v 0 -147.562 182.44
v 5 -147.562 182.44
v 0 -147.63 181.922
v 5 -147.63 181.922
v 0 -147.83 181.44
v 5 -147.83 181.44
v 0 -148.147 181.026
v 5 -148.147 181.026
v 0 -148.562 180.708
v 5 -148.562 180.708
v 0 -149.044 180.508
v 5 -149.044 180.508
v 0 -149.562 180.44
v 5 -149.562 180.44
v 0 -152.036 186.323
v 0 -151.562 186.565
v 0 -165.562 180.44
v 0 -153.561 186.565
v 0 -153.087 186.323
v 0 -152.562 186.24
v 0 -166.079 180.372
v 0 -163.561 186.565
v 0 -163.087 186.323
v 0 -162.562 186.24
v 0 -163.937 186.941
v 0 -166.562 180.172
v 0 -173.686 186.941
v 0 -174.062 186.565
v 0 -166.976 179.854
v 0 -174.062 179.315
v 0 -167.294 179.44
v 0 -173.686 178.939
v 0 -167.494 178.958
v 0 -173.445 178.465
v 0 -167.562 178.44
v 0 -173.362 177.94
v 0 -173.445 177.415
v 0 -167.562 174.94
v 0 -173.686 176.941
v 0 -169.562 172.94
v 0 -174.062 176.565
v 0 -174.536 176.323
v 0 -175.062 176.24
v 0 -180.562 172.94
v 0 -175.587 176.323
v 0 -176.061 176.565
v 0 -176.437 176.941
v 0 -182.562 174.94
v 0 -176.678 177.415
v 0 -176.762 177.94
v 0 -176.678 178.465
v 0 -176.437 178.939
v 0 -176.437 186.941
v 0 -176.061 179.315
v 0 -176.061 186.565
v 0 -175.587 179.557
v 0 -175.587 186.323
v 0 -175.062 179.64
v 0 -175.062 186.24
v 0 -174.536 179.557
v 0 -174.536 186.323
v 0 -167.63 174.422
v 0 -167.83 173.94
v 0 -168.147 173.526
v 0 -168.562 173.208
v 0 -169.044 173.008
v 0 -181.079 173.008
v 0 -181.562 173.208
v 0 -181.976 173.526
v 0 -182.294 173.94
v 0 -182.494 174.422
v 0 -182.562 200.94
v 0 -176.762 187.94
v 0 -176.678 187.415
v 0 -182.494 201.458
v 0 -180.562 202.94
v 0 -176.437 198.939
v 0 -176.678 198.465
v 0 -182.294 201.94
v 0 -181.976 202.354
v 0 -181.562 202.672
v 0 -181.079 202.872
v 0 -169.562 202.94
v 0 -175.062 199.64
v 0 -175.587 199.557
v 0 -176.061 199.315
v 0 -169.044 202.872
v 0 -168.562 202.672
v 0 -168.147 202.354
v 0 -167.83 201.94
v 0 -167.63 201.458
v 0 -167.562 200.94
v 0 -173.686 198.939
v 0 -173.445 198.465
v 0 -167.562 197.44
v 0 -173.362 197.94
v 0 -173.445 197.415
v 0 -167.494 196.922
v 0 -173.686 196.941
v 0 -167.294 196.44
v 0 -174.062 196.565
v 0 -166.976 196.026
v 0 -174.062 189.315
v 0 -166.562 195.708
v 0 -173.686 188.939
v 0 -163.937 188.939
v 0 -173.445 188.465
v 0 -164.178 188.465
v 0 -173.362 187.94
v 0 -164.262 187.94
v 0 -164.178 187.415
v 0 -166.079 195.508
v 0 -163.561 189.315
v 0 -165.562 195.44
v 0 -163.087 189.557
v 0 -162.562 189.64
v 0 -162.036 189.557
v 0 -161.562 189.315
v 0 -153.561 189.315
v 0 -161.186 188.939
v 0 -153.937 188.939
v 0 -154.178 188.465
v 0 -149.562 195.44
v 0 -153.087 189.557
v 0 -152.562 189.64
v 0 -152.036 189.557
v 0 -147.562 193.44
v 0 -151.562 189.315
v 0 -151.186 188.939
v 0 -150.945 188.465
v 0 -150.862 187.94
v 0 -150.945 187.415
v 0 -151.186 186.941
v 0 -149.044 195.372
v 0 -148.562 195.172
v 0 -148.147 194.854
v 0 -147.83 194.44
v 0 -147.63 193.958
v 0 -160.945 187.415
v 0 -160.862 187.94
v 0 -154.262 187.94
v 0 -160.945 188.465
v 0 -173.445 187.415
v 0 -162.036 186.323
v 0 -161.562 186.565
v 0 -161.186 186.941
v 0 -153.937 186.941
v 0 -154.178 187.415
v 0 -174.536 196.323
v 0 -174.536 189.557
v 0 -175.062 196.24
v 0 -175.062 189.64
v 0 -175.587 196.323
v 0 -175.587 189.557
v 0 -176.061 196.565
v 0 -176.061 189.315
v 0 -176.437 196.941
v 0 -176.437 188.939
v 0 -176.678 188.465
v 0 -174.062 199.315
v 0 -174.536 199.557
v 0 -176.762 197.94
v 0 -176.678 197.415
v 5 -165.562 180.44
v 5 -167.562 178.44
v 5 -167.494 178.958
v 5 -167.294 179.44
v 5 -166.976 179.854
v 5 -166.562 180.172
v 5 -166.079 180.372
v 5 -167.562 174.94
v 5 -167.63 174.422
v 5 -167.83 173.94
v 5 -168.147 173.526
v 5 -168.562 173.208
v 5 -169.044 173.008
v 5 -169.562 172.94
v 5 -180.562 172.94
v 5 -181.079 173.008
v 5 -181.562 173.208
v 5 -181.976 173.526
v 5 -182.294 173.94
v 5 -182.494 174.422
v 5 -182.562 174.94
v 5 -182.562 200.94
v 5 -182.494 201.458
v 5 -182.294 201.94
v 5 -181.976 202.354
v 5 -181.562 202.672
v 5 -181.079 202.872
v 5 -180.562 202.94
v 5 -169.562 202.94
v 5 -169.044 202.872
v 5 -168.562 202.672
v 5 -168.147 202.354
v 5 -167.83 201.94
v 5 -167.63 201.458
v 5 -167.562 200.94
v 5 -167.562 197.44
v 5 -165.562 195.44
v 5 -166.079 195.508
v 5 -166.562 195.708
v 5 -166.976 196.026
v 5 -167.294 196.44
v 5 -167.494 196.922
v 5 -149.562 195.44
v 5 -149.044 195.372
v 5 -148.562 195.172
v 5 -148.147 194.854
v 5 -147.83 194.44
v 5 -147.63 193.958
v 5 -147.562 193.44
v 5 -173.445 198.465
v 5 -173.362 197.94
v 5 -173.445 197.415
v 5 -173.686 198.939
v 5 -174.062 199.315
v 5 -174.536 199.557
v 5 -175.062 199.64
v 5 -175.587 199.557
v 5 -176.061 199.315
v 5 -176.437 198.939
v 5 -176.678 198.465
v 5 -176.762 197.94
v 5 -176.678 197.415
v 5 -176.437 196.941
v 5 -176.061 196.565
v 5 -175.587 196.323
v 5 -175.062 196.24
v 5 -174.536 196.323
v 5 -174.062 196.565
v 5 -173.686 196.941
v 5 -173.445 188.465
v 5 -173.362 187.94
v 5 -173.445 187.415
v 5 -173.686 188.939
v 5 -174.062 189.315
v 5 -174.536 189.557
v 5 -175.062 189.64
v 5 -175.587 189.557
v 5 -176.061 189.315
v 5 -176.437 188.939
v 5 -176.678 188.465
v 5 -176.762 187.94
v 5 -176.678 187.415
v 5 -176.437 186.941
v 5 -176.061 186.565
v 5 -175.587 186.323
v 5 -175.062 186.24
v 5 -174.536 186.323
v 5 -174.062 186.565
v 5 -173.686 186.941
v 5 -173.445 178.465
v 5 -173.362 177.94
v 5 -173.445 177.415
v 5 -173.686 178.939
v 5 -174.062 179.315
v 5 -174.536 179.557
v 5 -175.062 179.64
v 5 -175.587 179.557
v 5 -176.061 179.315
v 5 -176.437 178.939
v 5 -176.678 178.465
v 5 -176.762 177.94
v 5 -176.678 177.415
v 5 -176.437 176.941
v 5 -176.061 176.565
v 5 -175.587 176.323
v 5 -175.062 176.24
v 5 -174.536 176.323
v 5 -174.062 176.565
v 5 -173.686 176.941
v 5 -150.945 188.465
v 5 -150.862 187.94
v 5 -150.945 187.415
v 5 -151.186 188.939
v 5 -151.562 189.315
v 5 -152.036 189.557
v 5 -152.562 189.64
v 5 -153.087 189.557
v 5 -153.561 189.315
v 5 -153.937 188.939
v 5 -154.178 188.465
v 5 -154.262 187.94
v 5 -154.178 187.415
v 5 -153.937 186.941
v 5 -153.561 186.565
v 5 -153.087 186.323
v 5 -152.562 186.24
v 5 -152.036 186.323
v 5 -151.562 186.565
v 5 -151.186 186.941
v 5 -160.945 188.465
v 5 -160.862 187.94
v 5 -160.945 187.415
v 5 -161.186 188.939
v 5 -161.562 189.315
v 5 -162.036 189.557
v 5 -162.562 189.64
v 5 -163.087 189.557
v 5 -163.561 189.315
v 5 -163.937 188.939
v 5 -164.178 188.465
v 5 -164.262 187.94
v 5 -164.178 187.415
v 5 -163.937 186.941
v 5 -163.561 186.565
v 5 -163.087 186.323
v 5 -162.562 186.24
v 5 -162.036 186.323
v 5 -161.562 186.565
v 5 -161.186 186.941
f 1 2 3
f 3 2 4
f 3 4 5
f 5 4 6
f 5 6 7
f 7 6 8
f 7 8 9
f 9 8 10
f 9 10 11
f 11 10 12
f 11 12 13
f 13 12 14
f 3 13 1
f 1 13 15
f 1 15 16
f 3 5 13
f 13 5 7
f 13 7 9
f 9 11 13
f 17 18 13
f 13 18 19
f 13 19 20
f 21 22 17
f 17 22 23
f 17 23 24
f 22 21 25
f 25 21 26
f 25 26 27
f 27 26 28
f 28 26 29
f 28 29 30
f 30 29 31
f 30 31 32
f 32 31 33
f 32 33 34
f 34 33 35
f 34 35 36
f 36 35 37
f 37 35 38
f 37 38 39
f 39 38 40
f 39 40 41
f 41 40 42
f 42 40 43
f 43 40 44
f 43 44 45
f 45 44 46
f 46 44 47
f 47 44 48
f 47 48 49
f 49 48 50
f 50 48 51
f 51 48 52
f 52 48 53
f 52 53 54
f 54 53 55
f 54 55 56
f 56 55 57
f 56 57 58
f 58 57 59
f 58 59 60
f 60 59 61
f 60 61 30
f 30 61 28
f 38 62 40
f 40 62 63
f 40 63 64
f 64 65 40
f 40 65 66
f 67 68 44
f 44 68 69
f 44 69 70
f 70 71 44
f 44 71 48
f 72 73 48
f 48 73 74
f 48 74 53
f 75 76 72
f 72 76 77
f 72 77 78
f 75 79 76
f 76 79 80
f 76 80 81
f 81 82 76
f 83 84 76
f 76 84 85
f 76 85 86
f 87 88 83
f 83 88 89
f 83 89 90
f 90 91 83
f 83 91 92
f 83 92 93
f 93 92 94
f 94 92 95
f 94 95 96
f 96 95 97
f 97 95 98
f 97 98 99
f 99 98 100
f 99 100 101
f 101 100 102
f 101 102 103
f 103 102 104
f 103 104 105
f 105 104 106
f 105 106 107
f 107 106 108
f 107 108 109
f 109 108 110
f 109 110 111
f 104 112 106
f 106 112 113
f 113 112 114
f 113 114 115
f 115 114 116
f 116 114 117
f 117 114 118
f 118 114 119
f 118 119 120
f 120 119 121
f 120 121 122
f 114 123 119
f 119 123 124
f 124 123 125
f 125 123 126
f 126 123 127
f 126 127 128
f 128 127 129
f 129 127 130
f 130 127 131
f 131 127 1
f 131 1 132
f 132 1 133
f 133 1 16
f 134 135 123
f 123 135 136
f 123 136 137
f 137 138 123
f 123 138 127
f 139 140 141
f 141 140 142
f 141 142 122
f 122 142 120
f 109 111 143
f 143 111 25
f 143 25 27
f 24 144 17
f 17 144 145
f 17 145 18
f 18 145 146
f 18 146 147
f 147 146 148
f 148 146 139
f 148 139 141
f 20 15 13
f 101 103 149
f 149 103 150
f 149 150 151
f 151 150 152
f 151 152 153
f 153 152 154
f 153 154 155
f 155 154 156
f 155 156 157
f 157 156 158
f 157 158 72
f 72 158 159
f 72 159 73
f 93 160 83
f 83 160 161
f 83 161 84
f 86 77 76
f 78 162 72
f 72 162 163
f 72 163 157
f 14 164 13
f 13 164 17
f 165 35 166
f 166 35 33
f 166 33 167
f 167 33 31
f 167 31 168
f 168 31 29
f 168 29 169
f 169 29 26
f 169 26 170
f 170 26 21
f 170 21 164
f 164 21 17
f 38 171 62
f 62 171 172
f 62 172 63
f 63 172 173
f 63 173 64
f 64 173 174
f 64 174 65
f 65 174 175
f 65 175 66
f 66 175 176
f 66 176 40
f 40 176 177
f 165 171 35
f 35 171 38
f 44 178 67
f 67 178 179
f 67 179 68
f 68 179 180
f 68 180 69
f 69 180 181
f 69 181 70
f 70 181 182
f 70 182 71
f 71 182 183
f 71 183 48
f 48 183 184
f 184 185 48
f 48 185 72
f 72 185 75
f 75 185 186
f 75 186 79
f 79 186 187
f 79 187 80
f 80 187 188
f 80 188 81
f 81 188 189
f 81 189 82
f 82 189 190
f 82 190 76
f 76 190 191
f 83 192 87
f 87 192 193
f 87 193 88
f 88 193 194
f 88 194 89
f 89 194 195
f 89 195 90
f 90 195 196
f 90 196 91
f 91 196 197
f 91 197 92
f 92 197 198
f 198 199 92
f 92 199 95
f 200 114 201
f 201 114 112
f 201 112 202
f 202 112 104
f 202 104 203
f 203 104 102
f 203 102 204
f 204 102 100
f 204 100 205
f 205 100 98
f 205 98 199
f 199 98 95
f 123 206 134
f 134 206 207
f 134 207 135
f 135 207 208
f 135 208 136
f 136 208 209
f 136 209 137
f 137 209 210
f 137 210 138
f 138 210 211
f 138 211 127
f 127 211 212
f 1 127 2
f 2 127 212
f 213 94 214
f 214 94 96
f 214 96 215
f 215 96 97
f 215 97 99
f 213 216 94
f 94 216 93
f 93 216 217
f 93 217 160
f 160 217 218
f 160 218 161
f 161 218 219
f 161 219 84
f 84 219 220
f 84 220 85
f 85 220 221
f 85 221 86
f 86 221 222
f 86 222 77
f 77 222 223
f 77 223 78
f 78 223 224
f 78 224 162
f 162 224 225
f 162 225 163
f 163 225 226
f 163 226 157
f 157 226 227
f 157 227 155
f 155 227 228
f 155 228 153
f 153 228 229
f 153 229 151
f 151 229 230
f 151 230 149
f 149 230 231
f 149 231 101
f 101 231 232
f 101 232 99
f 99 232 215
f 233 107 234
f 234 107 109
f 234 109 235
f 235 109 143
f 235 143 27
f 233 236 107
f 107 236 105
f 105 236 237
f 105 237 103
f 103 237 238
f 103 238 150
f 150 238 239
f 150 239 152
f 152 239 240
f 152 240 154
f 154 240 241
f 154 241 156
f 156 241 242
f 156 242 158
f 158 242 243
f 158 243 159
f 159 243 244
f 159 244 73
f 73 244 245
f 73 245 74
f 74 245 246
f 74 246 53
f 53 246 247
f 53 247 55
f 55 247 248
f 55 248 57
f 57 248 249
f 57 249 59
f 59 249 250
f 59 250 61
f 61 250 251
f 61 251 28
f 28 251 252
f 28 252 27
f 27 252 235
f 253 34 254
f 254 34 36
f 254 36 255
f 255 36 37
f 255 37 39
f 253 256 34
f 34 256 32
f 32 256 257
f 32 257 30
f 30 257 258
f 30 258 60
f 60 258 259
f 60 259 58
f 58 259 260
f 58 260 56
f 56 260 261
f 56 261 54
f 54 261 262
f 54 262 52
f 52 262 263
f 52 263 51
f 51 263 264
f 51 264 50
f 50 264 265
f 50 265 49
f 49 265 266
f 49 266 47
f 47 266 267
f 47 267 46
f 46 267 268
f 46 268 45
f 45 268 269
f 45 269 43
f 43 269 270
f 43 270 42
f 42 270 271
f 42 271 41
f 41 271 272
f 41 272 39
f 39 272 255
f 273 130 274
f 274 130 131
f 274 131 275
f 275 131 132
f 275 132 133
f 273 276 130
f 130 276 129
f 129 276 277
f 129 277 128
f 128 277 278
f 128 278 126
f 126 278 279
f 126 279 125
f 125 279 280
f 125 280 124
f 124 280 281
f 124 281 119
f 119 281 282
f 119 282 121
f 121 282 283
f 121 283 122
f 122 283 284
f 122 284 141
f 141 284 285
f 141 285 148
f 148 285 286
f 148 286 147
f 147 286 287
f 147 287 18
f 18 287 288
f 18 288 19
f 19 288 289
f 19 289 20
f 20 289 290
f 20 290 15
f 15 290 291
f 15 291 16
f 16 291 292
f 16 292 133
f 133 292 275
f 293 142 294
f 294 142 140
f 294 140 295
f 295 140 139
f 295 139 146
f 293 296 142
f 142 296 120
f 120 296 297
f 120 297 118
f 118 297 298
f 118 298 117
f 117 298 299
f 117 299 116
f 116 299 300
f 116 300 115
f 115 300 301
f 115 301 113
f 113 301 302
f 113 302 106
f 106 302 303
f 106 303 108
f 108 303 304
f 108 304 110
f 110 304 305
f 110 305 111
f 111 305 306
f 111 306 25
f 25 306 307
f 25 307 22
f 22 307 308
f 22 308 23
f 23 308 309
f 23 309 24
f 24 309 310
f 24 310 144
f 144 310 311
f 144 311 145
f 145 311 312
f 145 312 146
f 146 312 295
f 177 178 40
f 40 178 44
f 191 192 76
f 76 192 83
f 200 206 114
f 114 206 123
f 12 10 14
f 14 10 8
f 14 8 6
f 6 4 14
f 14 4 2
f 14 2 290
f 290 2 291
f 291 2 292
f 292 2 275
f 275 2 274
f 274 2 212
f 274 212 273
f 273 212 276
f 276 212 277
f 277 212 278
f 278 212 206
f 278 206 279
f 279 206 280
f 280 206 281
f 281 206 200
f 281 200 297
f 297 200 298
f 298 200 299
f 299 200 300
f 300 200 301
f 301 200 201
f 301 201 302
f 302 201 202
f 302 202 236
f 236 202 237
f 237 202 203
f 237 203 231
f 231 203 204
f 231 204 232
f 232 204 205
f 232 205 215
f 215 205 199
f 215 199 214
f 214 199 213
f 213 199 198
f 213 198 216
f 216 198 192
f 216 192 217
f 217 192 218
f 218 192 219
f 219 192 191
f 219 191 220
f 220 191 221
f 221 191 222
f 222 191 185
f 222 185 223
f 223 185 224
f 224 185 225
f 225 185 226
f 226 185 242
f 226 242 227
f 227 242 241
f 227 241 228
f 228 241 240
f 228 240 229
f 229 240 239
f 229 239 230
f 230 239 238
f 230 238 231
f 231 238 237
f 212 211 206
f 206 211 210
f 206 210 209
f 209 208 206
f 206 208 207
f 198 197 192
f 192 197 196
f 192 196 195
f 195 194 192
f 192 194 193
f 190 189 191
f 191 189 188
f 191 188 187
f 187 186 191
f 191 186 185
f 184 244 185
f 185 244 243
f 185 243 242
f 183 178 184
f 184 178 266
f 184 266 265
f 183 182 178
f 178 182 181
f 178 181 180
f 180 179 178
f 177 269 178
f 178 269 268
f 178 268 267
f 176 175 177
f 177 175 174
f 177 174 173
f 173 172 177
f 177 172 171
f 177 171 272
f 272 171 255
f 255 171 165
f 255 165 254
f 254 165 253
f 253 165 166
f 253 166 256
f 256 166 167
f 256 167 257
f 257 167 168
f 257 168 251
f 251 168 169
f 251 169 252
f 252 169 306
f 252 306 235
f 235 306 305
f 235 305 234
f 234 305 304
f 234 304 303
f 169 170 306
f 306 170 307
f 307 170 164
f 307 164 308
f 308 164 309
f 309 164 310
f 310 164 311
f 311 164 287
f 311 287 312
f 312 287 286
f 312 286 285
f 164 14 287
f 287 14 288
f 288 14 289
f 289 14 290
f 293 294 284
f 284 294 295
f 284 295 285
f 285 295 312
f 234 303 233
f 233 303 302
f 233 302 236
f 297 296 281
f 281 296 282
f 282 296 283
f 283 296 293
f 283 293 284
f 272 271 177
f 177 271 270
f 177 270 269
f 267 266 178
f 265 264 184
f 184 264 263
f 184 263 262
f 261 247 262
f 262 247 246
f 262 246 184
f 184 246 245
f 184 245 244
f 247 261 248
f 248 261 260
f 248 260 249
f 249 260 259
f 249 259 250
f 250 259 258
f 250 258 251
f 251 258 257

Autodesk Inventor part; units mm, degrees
ref_plane "YZ Plane" through (0, 0, 0) normal (1, 0, 0) x (0, 1, 0)
ref_plane "XZ Plane" through (0, 0, 0) normal (0, 1, 0) x (-1, 0, 0)
ref_plane "XY Plane" through (0, 0, 0) normal (0, 0, 1) x (1, 0, 0)
sketch "スケッチ1" plane through (0, 0, 0) normal (1, 0, 0) x (0, 1, 0)
  line L0 (-167.5617, 195.4399) -> (192.4383, 195.4399)
  line L1 (192.4383, 195.4399) -> (192.4383, 180.4399)
  line L2 (192.4383, 180.4399) -> (-167.5617, 180.4399)
  line L3 (-167.5617, 180.4399) -> (-167.5617, 195.4399)
  line L4 (-167.5617, 230.4399) -> (-182.5617, 230.4399)
  line L5 (-182.5617, 230.4399) -> (-182.5617, 2.9399)
  line L6 (-182.5617, 2.9399) -> (-167.5617, 2.9399)
  line L7 (-167.5617, 2.9399) -> (-167.5617, 230.4399)
  line L8 (-167.5617, 230.4399) -> (-182.5617, 230.4399)
  line L9 (-182.5617, 230.4399) -> (-182.5617, 215.4399)
  line L10 (-182.5617, 215.4399) -> (-167.5617, 215.4399)
  line L11 (-167.5617, 215.4399) -> (-167.5617, 230.4399)
  line L12 (-117.5617, 180.4399) -> (-102.5617, 180.4399)
  line L13 (-102.5617, 180.4399) -> (-102.5617, 2.9399)
  line L14 (-102.5617, 2.9399) -> (-117.5617, 2.9399)
  line L15 (-117.5617, 2.9399) -> (-117.5617, 180.4399)
  line L16 (192.4383, 180.4399) -> (177.4383, 180.4399)
  line L17 (177.4383, 180.4399) -> (177.4383, 2.9399)
  line L18 (177.4383, 2.9399) -> (192.4383, 2.9399)
  line L19 (192.4383, 2.9399) -> (192.4383, 180.4399)
  circle A0 centre (-142.5617, 135.4399) radius 12.5
  circle A1 centre (-142.5617, 95.4399) radius 18.75
  line L20 (192.4383, 2.9399) -> (-167.5617, 2.9399)
  line L21 (-182.5617, 155.4399) -> (-102.5617, 155.4399)
  line L22 (-102.5617, 75.4399) -> (-182.5617, 75.4399)
  circle A2 centre (-142.5617, 95.4399) radius 20
  line L23 (-125.0617, 195.4399) -> (-125.0617, 180.4399)
  line L24 (-102.5617, 180.4399) -> (-102.5617, 195.4399)
  line L25 (-147.5617, 195.4399) -> (-147.5617, 180.4399)
  line L26 (-167.5617, 202.9399) -> (-182.5617, 202.9399)
  line L27 (-167.5617, 172.9399) -> (-182.5617, 172.9399)
  circle A3 centre (157.4383, 135.4399) radius 12.5
  line L28 (192.4383, 160.4399) -> (177.4383, 160.4399)
  line L29 (169.9383, 195.4399) -> (169.9383, 180.4399)
  line L30 (-167.5617, -189.5601) -> (192.4383, -189.5601)
  line L31 (192.4383, -189.5601) -> (192.4383, -174.5601)
  line L32 (192.4383, -174.5601) -> (-167.5617, -174.5601)
  line L33 (-167.5617, -174.5601) -> (-167.5617, -189.5601)
  line L34 (-167.5617, -224.5601) -> (-182.5617, -224.5601)
  line L35 (-182.5617, -224.5601) -> (-182.5617, 2.9399)
  line L36 (-167.5617, 2.9399) -> (-167.5617, -224.5601)
  line L37 (-167.5617, -224.5601) -> (-182.5617, -224.5601)
  line L38 (-182.5617, -224.5601) -> (-182.5617, -209.5601)
  line L39 (-182.5617, -209.5601) -> (-167.5617, -209.5601)
  line L40 (-167.5617, -209.5601) -> (-167.5617, -224.5601)
  line L41 (-117.5617, -174.5601) -> (-102.5617, -174.5601)
  line L42 (-102.5617, -174.5601) -> (-102.5617, 2.9399)
  line L43 (-117.5617, 2.9399) -> (-117.5617, -174.5601)
  line L44 (192.4383, -174.5601) -> (177.4383, -174.5601)
  line L45 (177.4383, -174.5601) -> (177.4383, 2.9399)
  line L46 (192.4383, 2.9399) -> (192.4383, -174.5601)
  circle A4 centre (-142.5617, -129.5601) radius 12.5
  circle A5 centre (-142.5617, -89.5601) radius 18.75
  line L47 (-182.5617, -149.5601) -> (-102.5617, -149.5601)
  line L48 (-102.5617, -69.5601) -> (-182.5617, -69.5601)
  circle A6 centre (-142.5617, -89.5601) radius 20
  line L49 (-125.0617, -189.5601) -> (-125.0617, -174.5601)
  line L50 (-102.5617, -174.5601) -> (-102.5617, -189.5601)
  line L51 (-147.5617, -189.5601) -> (-147.5617, -174.5601)
  line L52 (-167.5617, -197.0601) -> (-182.5617, -197.0601)
  line L53 (-167.5617, -167.0601) -> (-182.5617, -167.0601)
  circle A7 centre (157.4383, -129.5601) radius 12.5
  line L54 (192.4383, -154.5601) -> (177.4383, -154.5601)
  line L55 (169.9383, -189.5601) -> (169.9383, -174.5601)
  line L56 (192.4383, 155.4399) -> (144.9383, 155.4399)
  line L57 (144.9383, 155.4399) -> (144.9383, 75.4399)
  line L58 (144.9383, 75.4399) -> (192.4383, 75.4399)
  line L59 (192.4383, 75.4399) -> (192.4383, 155.4399)
  line L60 (177.4383, 155.4399) -> (153.4158, 147.275)
  line L61 (146.595, 129.2213) -> (177.4383, 75.4399)
  circle A8 centre (-175.0617, 197.9399) radius 1.7
  circle A9 centre (-175.0617, 187.9399) radius 1.7
  circle A10 centre (-175.0617, 177.9399) radius 1.7
  circle A11 centre (-162.5617, 187.9399) radius 1.7
  circle A12 centre (-152.5617, 187.9399) radius 1.7
  point P0 (0, 0)
  point P1 (-120.0617, 187.9399)
  point P2 (-110.0617, 187.9399)
  point P3 (-110.0617, 175.4399)
  point P4 (-110.0617, 165.4399)
  point P5 (184.9383, 175.4399)
  point P6 (184.9383, 165.4399)
  point P7 (184.9383, 187.9399)
  point P8 (174.9383, 187.9399)
  point P9 (-110.0617, 180.4399)
  point P10 (192.4383, 187.9399)
  point P11 (-110.0617, 95.4399)
  point P12 (-110.0617, 135.4399)
  point P13 (-175.0617, 135.4399)
  point P14 (-175.0617, 95.4399)
  point P15 (-175.0617, -89.5601)
  point P16 (-110.0617, -89.5601)
  point P17 (-110.0617, -129.5601)
  point P18 (-175.0617, -129.5601)
  point P19 (-175.0617, -172.0601)
  point P20 (-175.0617, -182.0601)
  point P21 (-175.0617, -192.0601)
  point P22 (-162.5617, -182.0601)
  point P23 (-152.5617, -182.0601)
  point P24 (-120.0617, -182.0601)
  point P25 (-110.0617, -182.0601)
  point P26 (-110.0617, -169.5601)
  point P27 (-110.0617, -159.5601)
  point P28 (174.9383, -182.0601)
  point P29 (184.9383, -182.0601)
  point P30 (184.9383, -169.5601)
  point P31 (184.9383, -159.5601)
  point P32 (184.9383, 135.4399)
  point P33 (184.9383, 95.4399)
  point P34 (177.4383, 91.6899)
  point P35 (184.9383, -89.5601)
  point P36 (184.9383, -129.5601)
  dimension "d0" = 7.5
  dimension "d1" = 7.5
  dimension "d2" = 7.5
  dimension "d3" = 7.5
  dimension "d4" = 10
  dimension "d5" = 10
  dimension "d6" = 5
  dimension "d7" = 10
  dimension "d8" = 7.5
  dimension "d9" = 7.5
  dimension "d10" = 7.5
  dimension "d11" = 10
  dimension "d12" = 7.5
  dimension "d13" = 7.5
  dimension "d14" = 5
  dimension "d15" = 10
  dimension "d16" = 7.5
  dimension "d17" = 7.5
  dimension "d18" = 7.5
  dimension "d19" = 10
  dimension "d20" = 7.5
  dimension "d21" = 7.5
  dimension "d22" = 5
  dimension "d23" = 10
  dimension "d24" = 7.5
  dimension "d25" = 7.5
  dimension "d26" = 20
  dimension "d27" = 20
  dimension "d28" = 7.5
  dimension "d29" = 7.5
  dimension "d30" = 20
  dimension "d31" = 7.5
  dimension "d32" = 7.5
  dimension "d33" = 20
  dimension "d34" = 3.4
  dimension "d35" = 3.4
  dimension "d36" = 3.4
  dimension "d37" = 3.4
  dimension "d38" = 3.4
extrude "押し出し1" add sketch "スケッチ1" along normal blind 5 contours L0 L25 L2 L3 | L3 L7 L27 L5 L26
fillet "フィレット1" radius 2 8 edges at (2.5, -147.5617, 195.4399) (2.5, -167.5617, 195.4399) (2.5, -167.5617, 202.9399) (2.5, -182.5617, 202.9399) (2.5, -182.5617, 172.9399) (2.5, -167.5617, 172.9399) (2.5, -167.5617, 180.4399) (2.5, -147.5617, 180.4399)
equation "\"d1\" = d0"
equation "\"d2\" = d0"
equation "\"d3\" = d0"
equation "\"d8\" = d0"
equation "\"d9\" = d0"
equation "\"d10\" = d0"
equation "\"d12\" = d0"
equation "\"d13\" = d0"
equation "\"d16\" = d0"
equation "\"d17\" = d0"
equation "\"d20\" = d18"
equation "\"d21\" = d18"
equation "\"d24\" = d18"
equation "\"d25\" = d18"
equation "\"d32\" = d31"
equation "\"d33\" = d30"
properties part number "ball_loading_v1_Plate_ASP_F_1" material "ABS プラスチック"
